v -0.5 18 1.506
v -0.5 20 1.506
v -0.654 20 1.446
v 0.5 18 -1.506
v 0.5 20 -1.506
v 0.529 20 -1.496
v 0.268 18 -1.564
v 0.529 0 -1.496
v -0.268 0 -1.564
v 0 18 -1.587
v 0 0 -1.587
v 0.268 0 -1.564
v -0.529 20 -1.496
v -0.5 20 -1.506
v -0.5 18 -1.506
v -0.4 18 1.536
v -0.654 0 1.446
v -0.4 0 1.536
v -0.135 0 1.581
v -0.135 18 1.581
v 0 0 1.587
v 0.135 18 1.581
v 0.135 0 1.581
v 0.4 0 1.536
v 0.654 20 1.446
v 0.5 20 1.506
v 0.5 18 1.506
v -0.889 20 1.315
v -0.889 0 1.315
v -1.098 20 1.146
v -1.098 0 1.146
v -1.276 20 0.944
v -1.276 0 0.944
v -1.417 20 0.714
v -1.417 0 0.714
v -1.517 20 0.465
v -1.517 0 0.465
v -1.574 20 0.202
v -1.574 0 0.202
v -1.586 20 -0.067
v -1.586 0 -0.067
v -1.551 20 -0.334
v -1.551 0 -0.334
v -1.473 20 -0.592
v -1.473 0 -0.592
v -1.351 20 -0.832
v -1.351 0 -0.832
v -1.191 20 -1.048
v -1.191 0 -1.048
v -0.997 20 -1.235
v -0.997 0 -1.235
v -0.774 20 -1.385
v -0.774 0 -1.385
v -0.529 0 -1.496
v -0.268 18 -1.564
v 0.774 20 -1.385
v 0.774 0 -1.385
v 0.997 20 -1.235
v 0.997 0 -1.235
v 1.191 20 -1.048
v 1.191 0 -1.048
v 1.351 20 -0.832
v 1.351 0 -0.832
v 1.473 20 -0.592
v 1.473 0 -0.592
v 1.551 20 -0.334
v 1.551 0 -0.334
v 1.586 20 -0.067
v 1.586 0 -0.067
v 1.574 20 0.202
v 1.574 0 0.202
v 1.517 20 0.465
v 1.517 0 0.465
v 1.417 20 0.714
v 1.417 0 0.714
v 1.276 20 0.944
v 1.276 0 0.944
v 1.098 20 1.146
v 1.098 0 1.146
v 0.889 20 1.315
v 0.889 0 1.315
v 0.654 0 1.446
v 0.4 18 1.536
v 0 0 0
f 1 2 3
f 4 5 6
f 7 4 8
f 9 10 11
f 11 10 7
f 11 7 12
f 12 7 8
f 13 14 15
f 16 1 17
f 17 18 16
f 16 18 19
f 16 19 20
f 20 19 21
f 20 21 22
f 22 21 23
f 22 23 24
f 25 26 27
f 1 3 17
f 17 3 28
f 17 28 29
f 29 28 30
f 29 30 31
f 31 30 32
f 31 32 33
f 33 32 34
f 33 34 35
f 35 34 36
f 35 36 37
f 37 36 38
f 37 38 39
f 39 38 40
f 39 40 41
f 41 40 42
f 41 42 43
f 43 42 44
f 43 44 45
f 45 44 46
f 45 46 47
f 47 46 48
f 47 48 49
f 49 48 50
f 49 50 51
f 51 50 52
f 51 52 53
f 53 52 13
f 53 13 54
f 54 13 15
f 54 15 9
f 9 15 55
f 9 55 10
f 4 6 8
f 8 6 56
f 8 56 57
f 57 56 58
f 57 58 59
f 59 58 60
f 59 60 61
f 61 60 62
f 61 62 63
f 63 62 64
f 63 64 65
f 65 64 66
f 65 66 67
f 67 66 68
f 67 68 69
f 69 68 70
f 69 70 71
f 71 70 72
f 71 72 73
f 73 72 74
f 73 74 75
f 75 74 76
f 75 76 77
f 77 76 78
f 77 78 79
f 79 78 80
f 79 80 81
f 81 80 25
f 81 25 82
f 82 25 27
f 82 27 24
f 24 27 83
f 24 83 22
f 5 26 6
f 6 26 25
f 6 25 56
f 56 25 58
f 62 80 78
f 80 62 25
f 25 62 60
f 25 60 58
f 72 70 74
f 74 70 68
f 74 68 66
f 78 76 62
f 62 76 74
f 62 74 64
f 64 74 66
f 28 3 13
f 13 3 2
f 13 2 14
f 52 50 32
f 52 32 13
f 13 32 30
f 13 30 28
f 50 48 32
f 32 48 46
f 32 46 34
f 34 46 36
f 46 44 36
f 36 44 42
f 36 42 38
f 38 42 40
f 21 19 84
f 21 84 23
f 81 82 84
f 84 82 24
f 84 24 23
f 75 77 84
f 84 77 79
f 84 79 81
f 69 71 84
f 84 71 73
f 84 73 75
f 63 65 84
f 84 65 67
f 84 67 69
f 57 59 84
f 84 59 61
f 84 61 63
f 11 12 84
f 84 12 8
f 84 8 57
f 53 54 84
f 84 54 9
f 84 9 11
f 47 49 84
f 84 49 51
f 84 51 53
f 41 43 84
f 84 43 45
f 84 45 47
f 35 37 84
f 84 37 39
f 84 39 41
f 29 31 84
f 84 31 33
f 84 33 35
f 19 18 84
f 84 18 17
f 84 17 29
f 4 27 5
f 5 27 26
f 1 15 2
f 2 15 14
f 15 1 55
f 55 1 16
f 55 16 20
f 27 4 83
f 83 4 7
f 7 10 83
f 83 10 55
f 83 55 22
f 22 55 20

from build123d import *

# Parameters (mm, degrees)
SKETCH1_R           = 1.587
BOSS_EXTRUDE1_DEPTH = 20
CUT_EXTRUDE1_START  = -2
CUT_EXTRUDE1_DEPTH  = 2


with BuildPart() as part:
    # Sketch1 → Boss-Extrude1 (new body)
    with BuildSketch(Plane(origin=(0, 0, 0), x_dir=(1, 0, 0), z_dir=(0, 1, 0))):
        with Locations(Location((0, 0, 0), (0, 0, 270))):
            Circle(SKETCH1_R)
    extrude(amount=BOSS_EXTRUDE1_DEPTH)

    # Sketch2 → Cut-Extrude1 (cut)
    with BuildSketch(Plane(origin=(0, 20, 0), x_dir=(1, 0, 0), z_dir=(0, 1, 0)).offset(CUT_EXTRUDE1_START)):
        with BuildLine():
            ThreePointArc((0.5, 1.506176948), (0.253245121, 1.566663942), (0, 1.587))
            ThreePointArc((0, 1.587), (-0.253245121, 1.566663942), (-0.5, 1.506176948))
            Line((-0.5, 1.506176948), (-0.5, -1.506176948))
            ThreePointArc((-0.5, -1.506176948), (-0.253245121, -1.566663942), (0, -1.587))
            ThreePointArc((0, -1.587), (0.253245121, -1.566663942), (0.5, -1.506176948))
            Line((0.5, -1.506176948), (0.5, 1.506176948))
        make_face()
    extrude(amount=CUT_EXTRUDE1_DEPTH, mode=Mode.SUBTRACT)


solid = part.part
